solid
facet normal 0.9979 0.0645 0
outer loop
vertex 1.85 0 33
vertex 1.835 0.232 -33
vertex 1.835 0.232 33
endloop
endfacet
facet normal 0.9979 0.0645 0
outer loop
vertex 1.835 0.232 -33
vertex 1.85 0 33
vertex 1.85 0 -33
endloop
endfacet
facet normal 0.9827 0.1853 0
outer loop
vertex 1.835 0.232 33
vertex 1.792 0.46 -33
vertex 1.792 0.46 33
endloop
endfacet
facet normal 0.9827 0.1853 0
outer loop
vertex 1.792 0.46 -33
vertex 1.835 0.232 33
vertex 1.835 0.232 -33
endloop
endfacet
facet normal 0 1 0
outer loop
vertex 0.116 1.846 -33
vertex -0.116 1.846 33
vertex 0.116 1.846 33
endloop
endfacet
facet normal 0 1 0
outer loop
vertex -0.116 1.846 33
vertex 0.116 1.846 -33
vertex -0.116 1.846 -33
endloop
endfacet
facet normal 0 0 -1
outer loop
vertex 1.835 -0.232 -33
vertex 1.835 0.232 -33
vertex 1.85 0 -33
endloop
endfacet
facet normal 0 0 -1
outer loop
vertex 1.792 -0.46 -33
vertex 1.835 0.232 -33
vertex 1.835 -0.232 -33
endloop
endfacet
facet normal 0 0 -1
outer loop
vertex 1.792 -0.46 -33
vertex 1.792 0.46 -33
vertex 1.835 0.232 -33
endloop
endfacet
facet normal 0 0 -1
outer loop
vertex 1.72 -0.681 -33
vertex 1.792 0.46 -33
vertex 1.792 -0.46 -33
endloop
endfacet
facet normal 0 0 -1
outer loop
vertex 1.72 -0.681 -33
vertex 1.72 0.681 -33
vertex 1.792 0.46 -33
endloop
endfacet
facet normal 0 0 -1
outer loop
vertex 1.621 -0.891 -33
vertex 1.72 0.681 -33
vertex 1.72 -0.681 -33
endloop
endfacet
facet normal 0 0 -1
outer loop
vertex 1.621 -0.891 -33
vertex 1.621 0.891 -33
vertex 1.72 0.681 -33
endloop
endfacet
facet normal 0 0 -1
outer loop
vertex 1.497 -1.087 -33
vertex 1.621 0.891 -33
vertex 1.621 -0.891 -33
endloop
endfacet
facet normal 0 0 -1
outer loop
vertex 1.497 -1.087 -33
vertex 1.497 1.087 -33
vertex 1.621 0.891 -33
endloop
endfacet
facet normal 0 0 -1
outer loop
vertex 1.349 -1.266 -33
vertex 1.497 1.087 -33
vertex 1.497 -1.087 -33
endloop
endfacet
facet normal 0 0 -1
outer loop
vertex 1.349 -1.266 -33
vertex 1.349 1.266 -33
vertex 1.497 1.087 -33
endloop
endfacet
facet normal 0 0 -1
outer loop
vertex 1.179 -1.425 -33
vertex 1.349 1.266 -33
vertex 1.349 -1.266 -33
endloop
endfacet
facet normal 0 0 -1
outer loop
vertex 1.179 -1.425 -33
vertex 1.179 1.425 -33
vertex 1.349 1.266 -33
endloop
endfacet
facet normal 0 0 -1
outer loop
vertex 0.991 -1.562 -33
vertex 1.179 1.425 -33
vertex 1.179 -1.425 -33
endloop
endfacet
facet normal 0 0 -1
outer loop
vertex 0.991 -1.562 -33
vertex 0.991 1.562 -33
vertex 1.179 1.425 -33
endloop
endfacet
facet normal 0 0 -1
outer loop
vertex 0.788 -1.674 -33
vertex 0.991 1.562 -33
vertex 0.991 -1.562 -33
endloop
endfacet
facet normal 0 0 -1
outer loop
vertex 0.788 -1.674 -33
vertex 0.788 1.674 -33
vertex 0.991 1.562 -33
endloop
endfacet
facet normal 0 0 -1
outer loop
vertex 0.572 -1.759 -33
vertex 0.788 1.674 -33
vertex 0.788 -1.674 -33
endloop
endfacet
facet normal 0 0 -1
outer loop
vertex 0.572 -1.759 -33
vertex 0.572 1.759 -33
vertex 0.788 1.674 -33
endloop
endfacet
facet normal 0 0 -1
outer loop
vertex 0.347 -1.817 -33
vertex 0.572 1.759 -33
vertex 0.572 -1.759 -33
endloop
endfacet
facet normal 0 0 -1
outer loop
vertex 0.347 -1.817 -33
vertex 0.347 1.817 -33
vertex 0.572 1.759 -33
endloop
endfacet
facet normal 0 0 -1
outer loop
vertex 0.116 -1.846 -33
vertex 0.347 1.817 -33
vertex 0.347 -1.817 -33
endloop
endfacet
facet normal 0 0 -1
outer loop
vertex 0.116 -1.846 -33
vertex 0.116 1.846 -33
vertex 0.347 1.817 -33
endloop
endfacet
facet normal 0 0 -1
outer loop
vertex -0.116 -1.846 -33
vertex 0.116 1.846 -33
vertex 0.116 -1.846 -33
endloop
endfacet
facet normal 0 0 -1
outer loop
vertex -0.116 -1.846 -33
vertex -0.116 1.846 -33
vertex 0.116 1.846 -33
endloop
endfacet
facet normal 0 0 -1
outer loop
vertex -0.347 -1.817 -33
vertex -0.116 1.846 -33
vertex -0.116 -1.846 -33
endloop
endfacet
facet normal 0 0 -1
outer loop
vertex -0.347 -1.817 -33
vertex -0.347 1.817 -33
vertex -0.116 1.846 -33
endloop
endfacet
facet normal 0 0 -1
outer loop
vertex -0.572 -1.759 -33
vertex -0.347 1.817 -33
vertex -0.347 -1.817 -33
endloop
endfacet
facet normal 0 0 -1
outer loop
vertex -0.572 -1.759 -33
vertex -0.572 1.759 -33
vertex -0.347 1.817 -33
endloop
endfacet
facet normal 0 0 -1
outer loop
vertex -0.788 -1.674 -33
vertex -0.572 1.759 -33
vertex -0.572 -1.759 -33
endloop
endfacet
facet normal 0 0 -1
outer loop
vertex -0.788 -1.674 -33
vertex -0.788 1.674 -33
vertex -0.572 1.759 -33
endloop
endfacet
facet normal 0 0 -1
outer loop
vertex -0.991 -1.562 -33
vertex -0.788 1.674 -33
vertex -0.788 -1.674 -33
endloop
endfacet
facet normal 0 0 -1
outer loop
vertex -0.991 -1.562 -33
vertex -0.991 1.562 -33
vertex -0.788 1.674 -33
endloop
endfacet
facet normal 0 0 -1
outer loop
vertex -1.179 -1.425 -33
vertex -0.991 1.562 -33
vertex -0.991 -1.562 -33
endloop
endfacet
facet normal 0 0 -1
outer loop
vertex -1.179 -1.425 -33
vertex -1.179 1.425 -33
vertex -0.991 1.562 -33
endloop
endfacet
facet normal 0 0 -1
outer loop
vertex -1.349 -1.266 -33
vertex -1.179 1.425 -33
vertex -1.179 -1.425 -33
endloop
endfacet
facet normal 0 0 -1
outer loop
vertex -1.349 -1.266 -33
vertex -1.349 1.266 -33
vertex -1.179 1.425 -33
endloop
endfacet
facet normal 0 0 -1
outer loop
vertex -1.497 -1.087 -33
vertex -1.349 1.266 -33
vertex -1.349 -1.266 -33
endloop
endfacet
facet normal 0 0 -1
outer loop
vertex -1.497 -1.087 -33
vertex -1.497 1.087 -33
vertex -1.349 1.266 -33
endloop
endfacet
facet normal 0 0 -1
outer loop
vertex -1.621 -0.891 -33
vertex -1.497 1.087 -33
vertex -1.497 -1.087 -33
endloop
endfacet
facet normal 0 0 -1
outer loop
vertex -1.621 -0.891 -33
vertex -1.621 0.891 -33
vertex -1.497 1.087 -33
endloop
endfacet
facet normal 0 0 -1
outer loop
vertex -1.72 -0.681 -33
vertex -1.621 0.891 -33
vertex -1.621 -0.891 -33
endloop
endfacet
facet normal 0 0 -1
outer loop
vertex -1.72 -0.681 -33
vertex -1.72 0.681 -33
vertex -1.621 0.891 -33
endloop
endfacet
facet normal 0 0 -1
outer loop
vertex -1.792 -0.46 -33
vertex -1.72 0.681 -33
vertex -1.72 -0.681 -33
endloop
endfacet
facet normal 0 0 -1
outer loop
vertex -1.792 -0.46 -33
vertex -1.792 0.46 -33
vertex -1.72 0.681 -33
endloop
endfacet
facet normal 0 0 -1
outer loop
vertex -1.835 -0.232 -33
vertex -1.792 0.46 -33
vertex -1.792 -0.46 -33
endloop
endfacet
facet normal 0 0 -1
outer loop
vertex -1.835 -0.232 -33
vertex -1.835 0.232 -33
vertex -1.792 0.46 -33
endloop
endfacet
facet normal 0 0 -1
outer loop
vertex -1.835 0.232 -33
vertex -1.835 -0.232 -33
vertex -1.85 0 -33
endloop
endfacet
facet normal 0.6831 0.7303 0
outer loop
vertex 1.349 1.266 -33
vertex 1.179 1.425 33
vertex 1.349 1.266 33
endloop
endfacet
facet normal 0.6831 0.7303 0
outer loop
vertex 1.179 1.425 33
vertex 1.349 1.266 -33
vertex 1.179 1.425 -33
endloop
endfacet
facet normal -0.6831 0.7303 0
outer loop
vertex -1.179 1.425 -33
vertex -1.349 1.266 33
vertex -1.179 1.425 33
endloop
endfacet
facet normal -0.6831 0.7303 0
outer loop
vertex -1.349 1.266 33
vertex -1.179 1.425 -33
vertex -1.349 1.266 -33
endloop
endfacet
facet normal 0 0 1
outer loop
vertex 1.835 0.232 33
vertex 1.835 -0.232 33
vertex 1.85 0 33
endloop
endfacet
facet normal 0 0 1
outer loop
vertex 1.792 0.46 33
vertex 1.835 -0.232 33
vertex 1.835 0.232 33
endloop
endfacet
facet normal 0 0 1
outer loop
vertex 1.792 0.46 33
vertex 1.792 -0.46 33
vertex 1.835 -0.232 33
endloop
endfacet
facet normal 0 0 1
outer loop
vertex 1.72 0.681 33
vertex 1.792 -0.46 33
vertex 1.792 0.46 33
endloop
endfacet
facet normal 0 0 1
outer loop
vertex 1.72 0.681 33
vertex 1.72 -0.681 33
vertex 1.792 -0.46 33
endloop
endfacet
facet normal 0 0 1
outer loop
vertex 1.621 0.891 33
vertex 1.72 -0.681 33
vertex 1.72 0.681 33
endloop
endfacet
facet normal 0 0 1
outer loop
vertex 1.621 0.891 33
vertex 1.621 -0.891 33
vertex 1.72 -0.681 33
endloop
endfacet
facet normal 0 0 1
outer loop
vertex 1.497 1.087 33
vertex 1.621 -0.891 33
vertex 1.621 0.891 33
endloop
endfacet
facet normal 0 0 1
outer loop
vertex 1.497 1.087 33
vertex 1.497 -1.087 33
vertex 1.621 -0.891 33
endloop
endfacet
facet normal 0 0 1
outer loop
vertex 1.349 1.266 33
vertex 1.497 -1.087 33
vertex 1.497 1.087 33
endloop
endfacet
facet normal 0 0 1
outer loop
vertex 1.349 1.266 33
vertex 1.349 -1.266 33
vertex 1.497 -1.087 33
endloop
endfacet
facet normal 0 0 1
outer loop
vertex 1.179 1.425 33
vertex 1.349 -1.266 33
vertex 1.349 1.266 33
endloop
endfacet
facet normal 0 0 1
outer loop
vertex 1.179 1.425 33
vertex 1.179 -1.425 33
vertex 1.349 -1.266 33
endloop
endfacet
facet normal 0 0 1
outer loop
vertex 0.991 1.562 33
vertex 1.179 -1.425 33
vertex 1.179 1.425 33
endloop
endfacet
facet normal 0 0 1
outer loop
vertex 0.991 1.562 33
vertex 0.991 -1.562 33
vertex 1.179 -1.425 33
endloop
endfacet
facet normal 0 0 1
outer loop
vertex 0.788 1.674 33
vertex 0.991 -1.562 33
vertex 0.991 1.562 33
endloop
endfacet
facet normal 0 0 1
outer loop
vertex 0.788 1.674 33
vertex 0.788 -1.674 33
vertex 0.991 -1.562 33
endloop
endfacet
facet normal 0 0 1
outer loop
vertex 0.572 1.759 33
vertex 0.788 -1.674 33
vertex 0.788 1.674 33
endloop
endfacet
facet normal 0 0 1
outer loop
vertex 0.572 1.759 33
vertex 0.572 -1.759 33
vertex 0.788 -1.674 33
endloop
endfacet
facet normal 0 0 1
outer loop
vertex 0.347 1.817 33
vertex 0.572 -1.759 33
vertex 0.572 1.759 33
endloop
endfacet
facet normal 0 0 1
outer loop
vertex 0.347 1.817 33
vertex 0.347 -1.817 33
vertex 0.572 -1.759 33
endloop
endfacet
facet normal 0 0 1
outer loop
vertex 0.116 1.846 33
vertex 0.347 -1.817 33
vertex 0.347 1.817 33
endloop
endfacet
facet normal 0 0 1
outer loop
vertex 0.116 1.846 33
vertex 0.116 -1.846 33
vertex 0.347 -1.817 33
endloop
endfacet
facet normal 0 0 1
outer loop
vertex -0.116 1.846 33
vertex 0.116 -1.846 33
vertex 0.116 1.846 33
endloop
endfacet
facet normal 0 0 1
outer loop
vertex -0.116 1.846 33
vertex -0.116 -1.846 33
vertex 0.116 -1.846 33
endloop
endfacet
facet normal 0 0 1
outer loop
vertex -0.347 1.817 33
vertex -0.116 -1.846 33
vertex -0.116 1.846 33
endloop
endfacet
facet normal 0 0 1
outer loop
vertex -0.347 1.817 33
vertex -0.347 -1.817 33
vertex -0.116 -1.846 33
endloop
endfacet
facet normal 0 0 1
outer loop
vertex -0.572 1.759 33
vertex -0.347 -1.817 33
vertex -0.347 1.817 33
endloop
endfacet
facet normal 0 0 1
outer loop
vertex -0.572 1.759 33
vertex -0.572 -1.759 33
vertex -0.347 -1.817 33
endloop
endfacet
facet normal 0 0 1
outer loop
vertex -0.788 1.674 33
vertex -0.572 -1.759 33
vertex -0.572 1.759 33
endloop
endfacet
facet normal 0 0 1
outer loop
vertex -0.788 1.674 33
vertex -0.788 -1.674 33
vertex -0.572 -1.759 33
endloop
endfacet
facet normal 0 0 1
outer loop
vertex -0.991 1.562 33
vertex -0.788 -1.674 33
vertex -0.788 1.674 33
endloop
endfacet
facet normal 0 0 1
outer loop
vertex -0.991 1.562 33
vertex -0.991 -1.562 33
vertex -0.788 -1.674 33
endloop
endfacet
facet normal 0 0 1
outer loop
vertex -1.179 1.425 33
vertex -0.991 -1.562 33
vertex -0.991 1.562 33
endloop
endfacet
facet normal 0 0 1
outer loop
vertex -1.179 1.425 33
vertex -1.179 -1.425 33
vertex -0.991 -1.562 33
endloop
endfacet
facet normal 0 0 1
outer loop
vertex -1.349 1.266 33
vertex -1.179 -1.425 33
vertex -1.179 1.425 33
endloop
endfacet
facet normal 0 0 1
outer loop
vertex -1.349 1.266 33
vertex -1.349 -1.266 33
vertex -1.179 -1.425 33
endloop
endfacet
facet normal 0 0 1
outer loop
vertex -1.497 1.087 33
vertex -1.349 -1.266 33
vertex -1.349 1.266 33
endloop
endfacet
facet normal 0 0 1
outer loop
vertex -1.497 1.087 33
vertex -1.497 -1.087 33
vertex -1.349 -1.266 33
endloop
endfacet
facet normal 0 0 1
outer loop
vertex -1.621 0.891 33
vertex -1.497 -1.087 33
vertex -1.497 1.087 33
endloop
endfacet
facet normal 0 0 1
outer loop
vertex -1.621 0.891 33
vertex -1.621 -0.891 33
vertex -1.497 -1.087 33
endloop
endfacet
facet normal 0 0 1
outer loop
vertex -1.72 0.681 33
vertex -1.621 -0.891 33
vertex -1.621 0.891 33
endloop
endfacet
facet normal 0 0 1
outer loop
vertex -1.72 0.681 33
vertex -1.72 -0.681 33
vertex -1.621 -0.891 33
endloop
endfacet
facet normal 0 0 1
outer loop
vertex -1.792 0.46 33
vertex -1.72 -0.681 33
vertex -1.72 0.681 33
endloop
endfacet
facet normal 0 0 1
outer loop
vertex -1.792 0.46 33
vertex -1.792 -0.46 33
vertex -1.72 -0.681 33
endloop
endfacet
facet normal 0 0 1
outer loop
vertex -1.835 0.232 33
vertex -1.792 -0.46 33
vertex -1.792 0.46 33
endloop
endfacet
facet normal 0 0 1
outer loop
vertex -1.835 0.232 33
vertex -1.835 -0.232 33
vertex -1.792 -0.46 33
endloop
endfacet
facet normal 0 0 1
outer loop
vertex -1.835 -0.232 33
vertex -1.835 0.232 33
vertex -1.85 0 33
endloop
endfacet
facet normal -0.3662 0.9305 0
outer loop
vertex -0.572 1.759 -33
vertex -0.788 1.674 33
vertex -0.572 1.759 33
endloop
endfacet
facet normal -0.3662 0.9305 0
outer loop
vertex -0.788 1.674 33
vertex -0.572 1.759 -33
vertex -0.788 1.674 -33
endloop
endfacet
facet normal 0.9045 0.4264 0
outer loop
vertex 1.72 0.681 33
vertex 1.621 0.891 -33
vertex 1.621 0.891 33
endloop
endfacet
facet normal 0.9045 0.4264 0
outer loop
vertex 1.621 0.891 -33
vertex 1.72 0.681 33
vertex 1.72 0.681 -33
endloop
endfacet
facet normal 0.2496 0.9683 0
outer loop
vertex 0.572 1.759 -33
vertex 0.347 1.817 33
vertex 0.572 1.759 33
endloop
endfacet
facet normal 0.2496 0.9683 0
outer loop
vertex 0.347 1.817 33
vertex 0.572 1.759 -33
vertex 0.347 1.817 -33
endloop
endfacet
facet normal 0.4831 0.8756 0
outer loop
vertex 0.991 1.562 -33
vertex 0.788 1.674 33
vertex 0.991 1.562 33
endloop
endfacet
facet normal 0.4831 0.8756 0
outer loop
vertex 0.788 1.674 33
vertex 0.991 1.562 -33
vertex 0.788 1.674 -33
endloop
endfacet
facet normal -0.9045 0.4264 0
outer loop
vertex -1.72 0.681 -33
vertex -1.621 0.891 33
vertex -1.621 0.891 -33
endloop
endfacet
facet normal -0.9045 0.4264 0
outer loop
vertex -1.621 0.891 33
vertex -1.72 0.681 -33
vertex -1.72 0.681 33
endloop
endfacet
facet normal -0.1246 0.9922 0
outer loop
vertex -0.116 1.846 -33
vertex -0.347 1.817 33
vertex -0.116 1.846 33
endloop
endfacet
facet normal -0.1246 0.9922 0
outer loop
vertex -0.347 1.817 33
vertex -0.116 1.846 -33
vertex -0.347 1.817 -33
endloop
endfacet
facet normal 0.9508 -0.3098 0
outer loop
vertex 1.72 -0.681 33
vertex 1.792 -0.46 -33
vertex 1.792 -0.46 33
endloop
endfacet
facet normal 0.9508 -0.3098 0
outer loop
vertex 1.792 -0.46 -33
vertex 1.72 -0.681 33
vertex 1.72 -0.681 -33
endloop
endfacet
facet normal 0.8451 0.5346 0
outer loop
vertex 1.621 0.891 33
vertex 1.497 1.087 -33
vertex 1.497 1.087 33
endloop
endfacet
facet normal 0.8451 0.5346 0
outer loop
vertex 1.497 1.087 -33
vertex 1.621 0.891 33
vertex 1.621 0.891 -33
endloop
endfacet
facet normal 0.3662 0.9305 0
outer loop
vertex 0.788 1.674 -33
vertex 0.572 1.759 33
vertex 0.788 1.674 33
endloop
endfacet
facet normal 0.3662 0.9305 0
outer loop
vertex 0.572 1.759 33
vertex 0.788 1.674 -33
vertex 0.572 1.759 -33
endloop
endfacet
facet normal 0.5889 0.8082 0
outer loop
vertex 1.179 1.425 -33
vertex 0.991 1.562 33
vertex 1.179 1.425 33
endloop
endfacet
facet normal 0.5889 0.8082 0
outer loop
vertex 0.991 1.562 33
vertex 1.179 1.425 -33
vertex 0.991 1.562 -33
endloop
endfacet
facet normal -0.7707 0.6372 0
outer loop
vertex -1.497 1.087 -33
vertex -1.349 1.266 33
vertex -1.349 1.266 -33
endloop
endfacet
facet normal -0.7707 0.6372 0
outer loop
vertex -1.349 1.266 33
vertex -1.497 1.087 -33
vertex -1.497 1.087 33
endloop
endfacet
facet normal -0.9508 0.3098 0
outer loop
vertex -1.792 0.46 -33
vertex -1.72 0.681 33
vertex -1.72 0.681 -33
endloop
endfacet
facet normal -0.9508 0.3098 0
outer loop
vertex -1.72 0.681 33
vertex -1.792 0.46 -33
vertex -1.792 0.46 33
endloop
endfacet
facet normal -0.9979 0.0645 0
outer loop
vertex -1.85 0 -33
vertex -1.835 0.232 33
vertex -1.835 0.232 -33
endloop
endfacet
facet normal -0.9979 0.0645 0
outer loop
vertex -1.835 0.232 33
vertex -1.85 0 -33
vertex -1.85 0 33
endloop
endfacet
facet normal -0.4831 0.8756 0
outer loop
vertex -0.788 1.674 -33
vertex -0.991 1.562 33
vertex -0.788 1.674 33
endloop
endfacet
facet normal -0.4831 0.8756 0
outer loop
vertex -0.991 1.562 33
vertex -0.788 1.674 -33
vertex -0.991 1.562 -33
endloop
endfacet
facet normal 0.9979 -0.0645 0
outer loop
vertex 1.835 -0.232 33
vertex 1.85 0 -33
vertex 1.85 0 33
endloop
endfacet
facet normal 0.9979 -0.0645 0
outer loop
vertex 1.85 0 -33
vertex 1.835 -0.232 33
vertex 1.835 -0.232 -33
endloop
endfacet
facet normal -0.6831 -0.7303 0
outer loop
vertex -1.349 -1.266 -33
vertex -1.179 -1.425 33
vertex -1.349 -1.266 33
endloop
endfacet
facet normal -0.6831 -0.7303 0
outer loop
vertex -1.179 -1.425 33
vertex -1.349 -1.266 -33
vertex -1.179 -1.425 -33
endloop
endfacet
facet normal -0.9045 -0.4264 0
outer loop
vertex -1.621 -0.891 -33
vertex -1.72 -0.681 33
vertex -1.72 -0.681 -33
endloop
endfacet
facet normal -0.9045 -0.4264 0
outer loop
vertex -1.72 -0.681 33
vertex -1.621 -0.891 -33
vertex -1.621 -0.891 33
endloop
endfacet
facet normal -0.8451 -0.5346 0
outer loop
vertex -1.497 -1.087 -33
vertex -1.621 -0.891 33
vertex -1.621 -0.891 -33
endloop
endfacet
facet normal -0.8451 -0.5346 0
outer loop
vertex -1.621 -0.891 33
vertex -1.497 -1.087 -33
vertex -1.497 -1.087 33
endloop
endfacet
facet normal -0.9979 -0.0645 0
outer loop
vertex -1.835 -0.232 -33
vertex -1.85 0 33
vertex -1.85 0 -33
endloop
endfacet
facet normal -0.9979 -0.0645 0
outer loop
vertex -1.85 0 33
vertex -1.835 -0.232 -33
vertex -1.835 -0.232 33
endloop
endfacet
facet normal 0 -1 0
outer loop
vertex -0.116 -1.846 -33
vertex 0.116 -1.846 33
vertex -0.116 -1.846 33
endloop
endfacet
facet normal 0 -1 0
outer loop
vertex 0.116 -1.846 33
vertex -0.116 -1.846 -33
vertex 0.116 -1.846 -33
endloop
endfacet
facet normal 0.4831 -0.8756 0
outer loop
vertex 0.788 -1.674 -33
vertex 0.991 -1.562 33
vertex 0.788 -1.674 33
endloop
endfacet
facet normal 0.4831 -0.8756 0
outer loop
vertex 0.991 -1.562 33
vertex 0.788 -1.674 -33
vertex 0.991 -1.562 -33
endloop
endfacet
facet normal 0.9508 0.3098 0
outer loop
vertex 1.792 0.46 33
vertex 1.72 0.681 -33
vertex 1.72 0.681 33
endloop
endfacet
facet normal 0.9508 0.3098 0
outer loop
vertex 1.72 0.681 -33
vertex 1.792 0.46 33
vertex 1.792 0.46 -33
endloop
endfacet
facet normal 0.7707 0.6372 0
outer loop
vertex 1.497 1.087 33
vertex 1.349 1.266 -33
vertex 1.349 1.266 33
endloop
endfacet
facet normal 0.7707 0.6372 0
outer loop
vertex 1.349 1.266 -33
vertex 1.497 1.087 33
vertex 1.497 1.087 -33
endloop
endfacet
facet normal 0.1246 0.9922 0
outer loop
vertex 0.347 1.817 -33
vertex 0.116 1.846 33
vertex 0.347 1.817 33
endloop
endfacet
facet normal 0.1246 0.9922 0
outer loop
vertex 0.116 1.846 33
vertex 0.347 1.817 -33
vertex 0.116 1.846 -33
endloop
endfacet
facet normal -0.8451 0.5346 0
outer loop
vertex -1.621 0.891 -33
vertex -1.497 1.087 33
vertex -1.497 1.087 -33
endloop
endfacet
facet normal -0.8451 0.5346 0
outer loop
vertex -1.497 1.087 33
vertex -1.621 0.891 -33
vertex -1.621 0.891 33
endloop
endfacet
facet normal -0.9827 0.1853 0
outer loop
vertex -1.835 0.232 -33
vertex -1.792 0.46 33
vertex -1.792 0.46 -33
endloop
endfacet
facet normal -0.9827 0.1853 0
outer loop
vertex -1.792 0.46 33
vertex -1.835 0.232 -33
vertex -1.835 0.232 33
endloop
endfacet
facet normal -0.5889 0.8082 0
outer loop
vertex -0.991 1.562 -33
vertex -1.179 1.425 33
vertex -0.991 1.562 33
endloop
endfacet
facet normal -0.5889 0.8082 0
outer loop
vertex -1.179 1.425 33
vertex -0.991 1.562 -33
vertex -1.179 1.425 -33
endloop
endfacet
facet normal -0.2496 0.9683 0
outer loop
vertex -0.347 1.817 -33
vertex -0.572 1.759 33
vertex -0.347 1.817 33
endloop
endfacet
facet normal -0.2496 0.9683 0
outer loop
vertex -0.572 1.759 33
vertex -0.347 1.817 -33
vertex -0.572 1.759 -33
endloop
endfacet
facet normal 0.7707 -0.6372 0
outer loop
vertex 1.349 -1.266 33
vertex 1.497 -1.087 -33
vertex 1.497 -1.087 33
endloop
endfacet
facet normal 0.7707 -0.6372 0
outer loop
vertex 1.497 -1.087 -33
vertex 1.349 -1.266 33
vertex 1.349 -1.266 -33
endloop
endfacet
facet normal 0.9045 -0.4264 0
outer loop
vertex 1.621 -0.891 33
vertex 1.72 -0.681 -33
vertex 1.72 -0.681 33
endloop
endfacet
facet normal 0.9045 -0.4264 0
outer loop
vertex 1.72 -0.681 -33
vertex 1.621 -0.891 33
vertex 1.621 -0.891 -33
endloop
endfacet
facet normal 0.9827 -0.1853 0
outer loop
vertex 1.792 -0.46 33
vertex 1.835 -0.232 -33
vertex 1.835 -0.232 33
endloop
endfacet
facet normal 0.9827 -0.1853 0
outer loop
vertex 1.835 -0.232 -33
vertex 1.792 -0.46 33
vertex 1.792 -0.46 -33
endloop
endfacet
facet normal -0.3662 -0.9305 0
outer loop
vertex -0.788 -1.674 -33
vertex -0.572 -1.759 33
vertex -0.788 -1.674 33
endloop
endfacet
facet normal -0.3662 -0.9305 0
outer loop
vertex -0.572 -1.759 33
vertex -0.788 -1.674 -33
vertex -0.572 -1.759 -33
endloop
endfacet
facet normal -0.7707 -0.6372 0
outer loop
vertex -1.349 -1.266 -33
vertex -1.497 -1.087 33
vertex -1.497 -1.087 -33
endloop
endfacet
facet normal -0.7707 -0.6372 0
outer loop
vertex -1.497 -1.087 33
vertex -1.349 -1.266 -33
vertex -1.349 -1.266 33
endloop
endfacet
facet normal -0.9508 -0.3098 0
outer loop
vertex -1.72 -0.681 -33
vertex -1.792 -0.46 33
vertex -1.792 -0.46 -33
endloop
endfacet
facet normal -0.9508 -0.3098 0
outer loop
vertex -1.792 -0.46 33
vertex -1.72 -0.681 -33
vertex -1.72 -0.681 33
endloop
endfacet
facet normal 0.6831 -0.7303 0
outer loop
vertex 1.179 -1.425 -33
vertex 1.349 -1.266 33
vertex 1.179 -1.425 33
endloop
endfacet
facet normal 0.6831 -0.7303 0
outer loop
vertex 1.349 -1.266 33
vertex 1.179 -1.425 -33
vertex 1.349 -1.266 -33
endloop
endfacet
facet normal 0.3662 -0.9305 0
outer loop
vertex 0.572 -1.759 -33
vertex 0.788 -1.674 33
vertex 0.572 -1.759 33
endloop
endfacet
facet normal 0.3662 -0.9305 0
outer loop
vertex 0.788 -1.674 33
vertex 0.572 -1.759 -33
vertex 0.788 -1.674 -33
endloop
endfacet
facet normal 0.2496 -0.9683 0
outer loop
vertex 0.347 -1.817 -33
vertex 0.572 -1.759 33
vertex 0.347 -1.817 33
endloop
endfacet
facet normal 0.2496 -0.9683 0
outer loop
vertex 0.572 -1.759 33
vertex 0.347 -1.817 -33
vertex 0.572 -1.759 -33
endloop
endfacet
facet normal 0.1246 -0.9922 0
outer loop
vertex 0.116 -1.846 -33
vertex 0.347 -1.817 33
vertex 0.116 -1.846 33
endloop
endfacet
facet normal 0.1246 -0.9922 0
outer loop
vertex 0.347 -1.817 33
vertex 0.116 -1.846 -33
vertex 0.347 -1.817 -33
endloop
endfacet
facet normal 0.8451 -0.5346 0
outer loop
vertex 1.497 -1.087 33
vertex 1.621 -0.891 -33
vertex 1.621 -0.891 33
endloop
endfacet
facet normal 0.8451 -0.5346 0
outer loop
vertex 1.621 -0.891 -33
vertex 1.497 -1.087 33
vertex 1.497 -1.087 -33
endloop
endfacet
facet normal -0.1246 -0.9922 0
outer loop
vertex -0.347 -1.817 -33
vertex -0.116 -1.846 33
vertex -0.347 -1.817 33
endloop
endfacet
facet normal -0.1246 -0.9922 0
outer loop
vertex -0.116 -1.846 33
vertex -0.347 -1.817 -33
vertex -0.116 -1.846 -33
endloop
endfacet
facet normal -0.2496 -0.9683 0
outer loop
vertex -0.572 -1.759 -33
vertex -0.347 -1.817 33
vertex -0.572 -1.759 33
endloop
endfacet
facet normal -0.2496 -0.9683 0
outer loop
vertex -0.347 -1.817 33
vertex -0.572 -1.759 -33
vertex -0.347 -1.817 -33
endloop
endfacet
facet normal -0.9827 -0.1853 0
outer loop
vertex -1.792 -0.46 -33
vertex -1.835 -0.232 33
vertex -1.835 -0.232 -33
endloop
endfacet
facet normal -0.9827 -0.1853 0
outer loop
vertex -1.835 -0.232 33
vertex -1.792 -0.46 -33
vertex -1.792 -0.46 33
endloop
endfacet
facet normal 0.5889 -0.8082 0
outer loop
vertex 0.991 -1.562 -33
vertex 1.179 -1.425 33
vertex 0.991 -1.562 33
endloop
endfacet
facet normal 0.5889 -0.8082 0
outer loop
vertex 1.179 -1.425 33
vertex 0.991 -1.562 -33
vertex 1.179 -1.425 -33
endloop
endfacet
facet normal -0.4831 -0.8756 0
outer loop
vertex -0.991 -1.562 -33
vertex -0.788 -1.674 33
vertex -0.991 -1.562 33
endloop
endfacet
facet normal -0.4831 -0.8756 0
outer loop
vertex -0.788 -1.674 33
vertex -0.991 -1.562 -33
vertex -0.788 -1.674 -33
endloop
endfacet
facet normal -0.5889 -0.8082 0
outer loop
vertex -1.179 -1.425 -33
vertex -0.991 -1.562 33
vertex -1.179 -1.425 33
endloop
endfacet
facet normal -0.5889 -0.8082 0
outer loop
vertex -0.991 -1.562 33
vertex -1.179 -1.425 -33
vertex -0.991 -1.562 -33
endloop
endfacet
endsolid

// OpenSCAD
$fn = 50;


difference() {
	union() {
		translate(v = [0, 0, -33.0000000000]) {
			cylinder(h = 66, r = 1.8500000000);
		}
	}
	union() {
		translate(v = [0, 0, -100.0000000000]) {
			cylinder(h = 200, r = 0);
		}
	}
}
